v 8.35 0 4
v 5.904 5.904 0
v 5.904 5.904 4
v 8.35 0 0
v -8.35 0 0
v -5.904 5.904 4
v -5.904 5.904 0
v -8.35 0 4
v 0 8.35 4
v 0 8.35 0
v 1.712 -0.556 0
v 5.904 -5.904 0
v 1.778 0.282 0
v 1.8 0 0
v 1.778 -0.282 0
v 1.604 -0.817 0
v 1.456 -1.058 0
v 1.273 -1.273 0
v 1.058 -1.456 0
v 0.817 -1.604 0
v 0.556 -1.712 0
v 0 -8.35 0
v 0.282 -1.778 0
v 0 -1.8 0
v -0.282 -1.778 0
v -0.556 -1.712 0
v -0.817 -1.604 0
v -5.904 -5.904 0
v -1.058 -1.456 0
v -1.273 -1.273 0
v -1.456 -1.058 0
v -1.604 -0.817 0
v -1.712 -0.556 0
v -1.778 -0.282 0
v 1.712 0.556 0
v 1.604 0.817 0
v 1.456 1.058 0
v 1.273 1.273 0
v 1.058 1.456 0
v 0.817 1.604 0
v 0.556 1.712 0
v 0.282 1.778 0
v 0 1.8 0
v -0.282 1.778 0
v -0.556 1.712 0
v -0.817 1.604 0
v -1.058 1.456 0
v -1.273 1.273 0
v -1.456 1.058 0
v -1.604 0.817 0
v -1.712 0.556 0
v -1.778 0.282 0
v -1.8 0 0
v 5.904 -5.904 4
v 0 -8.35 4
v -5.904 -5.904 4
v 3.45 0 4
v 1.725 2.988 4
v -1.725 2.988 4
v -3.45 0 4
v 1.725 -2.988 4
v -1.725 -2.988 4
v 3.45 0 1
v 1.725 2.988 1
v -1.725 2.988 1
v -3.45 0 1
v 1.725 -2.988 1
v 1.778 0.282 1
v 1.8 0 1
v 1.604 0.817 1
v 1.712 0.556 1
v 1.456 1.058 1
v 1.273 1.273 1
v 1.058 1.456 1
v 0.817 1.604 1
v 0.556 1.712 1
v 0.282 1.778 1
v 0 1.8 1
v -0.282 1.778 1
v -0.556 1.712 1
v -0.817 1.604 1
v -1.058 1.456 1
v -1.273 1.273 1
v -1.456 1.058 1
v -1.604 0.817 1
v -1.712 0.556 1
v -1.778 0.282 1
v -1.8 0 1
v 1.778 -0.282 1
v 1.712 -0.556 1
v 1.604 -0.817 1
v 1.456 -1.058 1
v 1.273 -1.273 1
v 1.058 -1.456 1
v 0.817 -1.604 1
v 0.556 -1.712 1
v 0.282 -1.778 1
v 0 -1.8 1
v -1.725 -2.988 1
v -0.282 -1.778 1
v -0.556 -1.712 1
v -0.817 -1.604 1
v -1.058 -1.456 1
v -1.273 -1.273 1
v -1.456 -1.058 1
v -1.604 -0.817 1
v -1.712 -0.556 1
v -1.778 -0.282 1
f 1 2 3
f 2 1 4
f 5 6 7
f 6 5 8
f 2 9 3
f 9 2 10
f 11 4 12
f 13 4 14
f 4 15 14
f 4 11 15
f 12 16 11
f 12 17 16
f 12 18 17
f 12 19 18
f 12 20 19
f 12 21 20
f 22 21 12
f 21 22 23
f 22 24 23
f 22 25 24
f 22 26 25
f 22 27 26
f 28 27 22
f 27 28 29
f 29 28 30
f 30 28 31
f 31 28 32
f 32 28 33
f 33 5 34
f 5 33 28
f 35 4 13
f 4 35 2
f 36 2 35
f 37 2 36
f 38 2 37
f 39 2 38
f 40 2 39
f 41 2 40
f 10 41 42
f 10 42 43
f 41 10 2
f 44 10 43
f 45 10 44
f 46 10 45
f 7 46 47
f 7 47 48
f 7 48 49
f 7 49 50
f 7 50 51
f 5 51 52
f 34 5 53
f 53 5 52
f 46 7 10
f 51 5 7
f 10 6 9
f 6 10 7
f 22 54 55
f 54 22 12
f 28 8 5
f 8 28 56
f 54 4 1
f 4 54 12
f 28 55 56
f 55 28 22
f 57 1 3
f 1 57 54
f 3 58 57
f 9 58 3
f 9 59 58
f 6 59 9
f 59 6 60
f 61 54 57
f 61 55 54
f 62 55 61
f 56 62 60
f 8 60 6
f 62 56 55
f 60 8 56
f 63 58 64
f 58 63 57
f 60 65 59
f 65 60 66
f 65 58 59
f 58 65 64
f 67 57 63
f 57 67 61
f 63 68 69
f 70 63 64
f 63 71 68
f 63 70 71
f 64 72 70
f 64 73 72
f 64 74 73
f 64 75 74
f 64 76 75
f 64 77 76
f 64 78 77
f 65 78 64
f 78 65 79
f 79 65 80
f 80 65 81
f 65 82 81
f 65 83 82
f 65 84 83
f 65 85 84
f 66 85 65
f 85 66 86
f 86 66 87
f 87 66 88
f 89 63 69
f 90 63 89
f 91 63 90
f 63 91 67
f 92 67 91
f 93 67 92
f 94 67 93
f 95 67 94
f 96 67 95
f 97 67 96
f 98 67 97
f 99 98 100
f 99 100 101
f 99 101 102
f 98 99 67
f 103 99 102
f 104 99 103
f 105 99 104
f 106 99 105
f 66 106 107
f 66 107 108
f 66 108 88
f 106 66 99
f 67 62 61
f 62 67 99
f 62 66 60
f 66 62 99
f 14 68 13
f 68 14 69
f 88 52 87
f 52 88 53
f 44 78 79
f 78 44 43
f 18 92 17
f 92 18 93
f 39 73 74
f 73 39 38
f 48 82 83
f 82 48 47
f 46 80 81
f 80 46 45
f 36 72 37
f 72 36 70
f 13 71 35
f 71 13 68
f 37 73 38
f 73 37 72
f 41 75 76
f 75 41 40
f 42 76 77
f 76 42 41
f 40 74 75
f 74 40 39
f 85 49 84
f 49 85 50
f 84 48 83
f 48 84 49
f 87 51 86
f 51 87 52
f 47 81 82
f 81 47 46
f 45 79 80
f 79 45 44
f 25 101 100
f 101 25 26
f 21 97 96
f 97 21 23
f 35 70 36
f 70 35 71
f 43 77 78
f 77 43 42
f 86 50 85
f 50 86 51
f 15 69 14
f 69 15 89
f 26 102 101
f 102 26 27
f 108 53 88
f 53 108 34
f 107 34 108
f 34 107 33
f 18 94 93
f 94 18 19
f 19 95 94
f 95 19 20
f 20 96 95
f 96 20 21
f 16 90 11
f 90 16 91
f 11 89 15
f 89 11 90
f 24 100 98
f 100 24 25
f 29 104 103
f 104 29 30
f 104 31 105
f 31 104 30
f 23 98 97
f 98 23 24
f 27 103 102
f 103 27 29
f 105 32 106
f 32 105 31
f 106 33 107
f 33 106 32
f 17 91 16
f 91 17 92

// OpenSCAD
// file: ../src/AIRDOS_batter.scad
use <flexbatter.scad>
include <../configuration.scad>


module AIRDOS_prezentace()
{
  
AIRDOS_batter();

translate([10.16-10/2,-17-5.3,vyska_sloupku]) 
AIRDOS_batter_pasek();

translate([5*10.16-10/2,-17-5.3,vyska_sloupku]) 
AIRDOS_batter_pasek();  


translate([0,0,baterka_prumer/2+1.5])   
  
BATERKA();
 
translate([10.16,-17-5.3,vyska_sloupku+3])     
matka();    
 
translate([10.16,-17-5.3+10.16*pocet_poli_mezi_srouby,vyska_sloupku+3])     
matka();    
    
translate([5*10.16,-17-5.3,vyska_sloupku+3])     
matka();    
 
translate([5*10.16,-17-5.3+10.16*pocet_poli_mezi_srouby,vyska_sloupku+3])     
matka();      
    
}  

module AIRDOS_batter_pasek()
{
  
   difference () 
    {
   union()       {   
    cube([10,pocet_poli_mezi_srouby*10.16,2],center=false); 
        translate([10/2,0,0]) 
        cylinder (h = 3, r= 10/2, $fn=20);
        
     translate([10/2,pocet_poli_mezi_srouby*10.16,0]) 
        cylinder (h = 3, r= 10/2, $fn=20);
    }
    
     translate([10/2,0,-0.01]) 
            cylinder (h = vyska_sloupku, r= (prumer_sroubu+0.2)/2, $fn=40);
    
     translate([10/2,pocet_poli_mezi_srouby*10.16,-0.01]) 
            cylinder (h = vyska_sloupku, r= (prumer_sroubu+0.2)/2, $fn=40);
    
    
    }
    
    
       
}

module AIRDOS_batter()
{
        flexbatter();

        translate([10.16,-17-5.3,0])
            SLOUPEK_bocnice(4.5);
        translate([5*10.16,-17-5.3,0])
            SLOUPEK_bocnice(4.5);
            
        translate([10.16,-17-5.3+pocet_poli_mezi_srouby*10.16,0])
            rotate([0, 0, 180])
            SLOUPEK_bocnice(7.5);
        translate([5*10.16,-17-5.3+pocet_poli_mezi_srouby*10.16,0])
            rotate([0, 0, 180])
            SLOUPEK_bocnice(7.5);
}

module SLOUPEK()
{    
translate([0,0,0]) 
    difference () 
    {
        
        cylinder (h = vyska_sloupku, r= sirka_matky/2+sila_materialu/2, $fn=20);
        
        translate([0,0,vyska_sloupku-vyska_matky-0.3]) 
            cylinder (h = vyska_matky+0.31, r= (sirka_matky+0.2)/2, $fn=6);
        
        translate([0,0,-0.01]) 
            cylinder (h = vyska_sloupku, r= (prumer_sroubu+0.2)/2, $fn=40);
               
       
    
    }       
}

module SLOUPEK_bocnice(delka_bocnice)
{    

    
    difference () 
    {
        
     union()       {   
       
         //krychle
         translate([-(sirka_matky/2+sila_materialu/2),0,0]) 
         cube([2*(sirka_matky/2+sila_materialu/2),delka_bocnice,vyska_sloupku],center=false); 
     
          cylinder (h = vyska_sloupku, r= sirka_matky/2+sila_materialu/2, $fn=20);
         
         }    
        
         
       
        
        translate([0,0,vyska_sloupku-vyska_matky-0.3]) 
            cylinder (h = vyska_matky+0.31, r= (sirka_matky+0.2)/2, $fn=6);
        
        translate([0,0,-0.01]) 
            cylinder (h = vyska_sloupku, r= (prumer_sroubu+0.2)/2, $fn=40);
               
       
    
    }       
}


baterka_prumer=33;
baterka_delka=60;
//https://www.battery.cz/saft-ls-33600-lithiovy-clanek-3-6v-17000mah.html
module BATERKA()
{    
translate([0,0,0]) 
   
   rotate([90, 0, 90])  
        cylinder (h = baterka_delka, r= baterka_prumer/2, $fn=20);
      
}


module matka()
{    
translate([0,0,0]) 
    difference () 
    {
        
        cylinder (h = vyska_matky+1, r= sirka_matky/2+5, $fn=8);
        
        translate([0,0,1]) 
            cylinder (h = vyska_matky+0.31, r= (sirka_matky+0.2)/2, $fn=6);
        
        translate([0,0,-0.01]) 
            cylinder (h = vyska_sloupku, r= (prumer_sroubu+0.2)/2, $fn=40);
               
       
    
    }       
}
// file: ../configuration.scad
//Parametry sroubu
prumer_sroubu=3.4;
prumer_hlavy_sroubu=6;
vyska_hlavy_sroubu=4;
vyska_matky=3;
sirka_matky=6.7;

baterka_prumer=33;
baterka_delka=60;


vyska_sloupku=baterka_prumer+1;
sila_materialu=1.3;

pocet_poli_mezi_srouby=12;
// main file
$fn=100; // model faces resolution.
include <../configuration.scad>


use <../src/flexbatter.scad>
use <../src/AIRDOS_batter.scad>


matka();
